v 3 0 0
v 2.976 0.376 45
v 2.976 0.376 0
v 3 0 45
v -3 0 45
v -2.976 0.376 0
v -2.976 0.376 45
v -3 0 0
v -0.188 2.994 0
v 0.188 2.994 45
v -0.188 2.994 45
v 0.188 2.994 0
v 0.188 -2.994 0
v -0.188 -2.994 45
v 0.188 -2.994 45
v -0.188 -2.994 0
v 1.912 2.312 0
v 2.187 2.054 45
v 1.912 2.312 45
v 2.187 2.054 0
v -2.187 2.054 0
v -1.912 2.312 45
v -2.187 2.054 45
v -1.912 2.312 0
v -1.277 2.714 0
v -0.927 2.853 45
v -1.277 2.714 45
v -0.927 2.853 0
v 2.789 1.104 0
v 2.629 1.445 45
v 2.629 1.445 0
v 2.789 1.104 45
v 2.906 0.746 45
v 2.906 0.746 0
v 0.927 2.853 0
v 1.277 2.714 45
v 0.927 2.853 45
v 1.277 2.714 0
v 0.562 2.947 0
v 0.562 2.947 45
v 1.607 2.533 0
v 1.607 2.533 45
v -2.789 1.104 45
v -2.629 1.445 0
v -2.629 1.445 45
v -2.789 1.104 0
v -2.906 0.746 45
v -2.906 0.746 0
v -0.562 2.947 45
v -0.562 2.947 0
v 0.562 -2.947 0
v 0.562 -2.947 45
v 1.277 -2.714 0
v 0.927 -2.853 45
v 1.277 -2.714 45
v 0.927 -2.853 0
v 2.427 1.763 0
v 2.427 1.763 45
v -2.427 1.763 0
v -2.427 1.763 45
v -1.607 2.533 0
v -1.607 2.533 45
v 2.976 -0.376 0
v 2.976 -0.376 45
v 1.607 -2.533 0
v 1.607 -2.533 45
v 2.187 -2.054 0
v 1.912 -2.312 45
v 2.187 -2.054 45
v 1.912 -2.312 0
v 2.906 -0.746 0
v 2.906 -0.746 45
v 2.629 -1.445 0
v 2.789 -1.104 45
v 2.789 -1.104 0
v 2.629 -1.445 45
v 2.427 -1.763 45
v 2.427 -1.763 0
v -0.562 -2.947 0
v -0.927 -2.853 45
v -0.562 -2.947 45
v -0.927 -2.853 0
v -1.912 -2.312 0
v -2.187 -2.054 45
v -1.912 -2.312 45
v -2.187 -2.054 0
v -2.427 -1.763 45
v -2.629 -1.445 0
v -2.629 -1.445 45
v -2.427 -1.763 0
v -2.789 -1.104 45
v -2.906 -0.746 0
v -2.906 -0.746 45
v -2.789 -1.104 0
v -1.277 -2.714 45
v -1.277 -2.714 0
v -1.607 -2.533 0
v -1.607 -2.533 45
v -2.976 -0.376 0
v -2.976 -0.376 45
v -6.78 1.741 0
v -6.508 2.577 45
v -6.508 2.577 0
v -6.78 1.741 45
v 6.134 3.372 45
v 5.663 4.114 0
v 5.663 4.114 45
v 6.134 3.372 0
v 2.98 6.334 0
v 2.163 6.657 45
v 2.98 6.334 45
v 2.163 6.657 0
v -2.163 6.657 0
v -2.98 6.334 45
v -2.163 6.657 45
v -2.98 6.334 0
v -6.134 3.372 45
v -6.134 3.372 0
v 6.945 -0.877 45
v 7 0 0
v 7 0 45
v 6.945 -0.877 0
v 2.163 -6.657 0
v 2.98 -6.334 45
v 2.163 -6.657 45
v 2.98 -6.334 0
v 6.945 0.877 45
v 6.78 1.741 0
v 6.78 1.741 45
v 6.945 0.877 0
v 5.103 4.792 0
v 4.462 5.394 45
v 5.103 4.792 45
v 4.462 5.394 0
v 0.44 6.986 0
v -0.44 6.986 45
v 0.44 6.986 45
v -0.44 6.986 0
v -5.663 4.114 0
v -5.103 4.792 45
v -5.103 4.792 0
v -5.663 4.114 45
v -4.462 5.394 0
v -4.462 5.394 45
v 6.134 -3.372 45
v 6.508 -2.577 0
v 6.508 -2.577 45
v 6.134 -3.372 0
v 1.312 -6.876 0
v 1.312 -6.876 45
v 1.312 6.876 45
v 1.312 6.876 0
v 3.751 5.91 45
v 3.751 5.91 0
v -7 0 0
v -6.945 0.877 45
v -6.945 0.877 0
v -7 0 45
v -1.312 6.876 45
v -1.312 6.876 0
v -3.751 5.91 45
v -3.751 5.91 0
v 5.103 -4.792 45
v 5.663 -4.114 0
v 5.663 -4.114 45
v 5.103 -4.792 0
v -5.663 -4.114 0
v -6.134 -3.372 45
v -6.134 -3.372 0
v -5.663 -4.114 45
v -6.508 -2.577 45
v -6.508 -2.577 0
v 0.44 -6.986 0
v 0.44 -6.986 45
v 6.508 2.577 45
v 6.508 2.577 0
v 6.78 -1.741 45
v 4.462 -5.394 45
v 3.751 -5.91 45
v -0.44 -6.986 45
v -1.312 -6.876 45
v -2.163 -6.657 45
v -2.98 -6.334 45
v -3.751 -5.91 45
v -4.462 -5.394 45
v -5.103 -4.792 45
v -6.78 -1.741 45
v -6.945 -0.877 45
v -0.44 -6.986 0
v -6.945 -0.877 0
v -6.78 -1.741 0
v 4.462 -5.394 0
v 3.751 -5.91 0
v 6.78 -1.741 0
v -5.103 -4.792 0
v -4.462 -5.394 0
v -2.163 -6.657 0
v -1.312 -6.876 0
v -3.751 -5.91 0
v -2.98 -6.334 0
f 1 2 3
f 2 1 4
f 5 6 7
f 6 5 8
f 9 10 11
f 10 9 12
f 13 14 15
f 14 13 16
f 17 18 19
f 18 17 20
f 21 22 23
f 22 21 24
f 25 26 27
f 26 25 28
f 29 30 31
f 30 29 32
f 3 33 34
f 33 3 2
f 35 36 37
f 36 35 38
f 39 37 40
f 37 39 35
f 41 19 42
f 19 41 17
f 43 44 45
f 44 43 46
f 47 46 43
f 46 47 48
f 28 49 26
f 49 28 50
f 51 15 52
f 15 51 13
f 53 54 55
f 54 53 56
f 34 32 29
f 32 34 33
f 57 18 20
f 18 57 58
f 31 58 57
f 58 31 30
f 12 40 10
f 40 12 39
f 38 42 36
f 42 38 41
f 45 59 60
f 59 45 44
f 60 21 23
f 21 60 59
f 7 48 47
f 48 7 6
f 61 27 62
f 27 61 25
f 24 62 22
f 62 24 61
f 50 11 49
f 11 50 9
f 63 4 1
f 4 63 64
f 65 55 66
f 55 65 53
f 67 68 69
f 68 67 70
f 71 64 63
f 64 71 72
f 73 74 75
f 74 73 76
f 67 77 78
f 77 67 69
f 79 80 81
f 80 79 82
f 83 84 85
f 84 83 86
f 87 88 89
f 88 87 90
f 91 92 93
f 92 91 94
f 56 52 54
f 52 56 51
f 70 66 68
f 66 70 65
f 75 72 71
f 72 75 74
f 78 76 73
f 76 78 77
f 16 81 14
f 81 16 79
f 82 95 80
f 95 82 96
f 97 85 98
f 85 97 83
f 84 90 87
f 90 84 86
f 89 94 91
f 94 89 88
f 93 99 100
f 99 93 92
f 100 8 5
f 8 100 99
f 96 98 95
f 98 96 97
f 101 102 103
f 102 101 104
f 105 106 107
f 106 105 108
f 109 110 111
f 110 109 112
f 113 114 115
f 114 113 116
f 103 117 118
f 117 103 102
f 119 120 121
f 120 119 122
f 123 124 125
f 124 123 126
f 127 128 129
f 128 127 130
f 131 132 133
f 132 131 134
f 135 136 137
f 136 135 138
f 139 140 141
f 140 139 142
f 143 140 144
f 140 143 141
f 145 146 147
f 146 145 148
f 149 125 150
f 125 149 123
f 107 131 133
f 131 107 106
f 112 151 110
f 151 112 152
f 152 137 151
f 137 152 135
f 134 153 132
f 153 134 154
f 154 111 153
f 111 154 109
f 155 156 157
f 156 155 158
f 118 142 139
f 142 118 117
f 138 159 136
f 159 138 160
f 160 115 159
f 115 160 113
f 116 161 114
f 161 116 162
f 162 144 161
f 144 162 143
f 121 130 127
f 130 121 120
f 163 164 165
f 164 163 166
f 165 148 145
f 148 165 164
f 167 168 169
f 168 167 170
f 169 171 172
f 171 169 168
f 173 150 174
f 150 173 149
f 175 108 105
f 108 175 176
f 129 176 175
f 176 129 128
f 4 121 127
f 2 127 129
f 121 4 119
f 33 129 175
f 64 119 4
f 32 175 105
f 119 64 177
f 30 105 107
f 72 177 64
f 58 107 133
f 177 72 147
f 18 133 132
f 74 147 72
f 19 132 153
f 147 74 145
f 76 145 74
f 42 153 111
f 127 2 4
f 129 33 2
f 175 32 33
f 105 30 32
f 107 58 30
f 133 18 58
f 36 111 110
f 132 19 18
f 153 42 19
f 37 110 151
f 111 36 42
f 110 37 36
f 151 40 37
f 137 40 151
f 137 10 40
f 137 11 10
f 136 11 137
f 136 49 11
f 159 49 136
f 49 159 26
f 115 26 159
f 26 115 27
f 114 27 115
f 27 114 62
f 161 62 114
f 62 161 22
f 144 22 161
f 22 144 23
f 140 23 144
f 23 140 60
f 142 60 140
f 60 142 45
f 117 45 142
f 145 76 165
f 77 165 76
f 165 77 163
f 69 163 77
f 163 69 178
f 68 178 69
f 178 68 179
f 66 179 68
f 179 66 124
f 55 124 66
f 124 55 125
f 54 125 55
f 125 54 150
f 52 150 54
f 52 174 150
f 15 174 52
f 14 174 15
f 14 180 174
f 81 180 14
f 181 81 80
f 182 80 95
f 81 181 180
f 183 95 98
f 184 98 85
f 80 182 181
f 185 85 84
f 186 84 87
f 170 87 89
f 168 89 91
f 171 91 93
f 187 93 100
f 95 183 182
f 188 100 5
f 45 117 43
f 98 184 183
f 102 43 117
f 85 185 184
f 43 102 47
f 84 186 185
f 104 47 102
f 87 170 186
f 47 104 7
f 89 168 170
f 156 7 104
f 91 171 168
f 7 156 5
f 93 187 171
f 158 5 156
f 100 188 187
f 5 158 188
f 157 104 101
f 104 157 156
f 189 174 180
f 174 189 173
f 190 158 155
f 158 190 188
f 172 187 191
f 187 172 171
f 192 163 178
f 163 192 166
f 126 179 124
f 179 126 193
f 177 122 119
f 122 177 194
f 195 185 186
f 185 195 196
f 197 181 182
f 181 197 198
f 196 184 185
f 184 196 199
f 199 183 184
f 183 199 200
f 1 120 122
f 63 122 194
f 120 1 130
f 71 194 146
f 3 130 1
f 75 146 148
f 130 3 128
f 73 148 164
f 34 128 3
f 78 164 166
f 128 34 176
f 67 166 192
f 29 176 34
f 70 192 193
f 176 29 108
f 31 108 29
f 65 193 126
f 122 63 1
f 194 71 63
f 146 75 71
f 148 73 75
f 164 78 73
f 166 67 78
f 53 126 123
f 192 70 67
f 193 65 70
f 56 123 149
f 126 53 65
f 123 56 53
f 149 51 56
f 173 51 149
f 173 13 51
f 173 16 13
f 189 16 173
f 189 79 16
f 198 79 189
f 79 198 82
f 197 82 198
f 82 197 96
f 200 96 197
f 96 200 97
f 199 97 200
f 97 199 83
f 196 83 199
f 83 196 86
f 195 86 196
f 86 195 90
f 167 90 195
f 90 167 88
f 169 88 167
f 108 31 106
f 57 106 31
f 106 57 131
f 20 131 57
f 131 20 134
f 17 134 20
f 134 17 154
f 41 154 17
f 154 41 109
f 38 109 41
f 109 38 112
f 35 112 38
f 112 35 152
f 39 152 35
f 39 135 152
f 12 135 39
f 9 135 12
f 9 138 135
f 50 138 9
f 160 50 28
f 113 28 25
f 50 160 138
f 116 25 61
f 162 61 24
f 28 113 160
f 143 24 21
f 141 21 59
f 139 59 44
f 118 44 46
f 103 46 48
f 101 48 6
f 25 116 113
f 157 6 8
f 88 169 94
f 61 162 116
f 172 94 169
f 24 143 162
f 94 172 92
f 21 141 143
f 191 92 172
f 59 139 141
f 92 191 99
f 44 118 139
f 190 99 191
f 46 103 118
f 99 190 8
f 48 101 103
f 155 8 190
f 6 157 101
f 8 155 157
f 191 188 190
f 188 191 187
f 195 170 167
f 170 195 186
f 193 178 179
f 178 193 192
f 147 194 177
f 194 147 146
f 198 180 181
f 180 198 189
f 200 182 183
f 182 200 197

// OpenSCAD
$fn = 50;


difference() {
	union() {
		cylinder(h = 45, r = 7.0000000000);
	}
	union() {
		cylinder(h = 45, r = 3.0000000000);
		cylinder(h = 45, r = 3.0000000000);
		cylinder(h = 45, r = 1.5000000000);
		cylinder(h = 45, r = 1.5000000000);
		cylinder(h = 45, r = 1.5000000000);
		cylinder(h = 45, r = 1.5000000000);
		cylinder(h = 45, r = 1.5000000000);
		cylinder(h = 45, r = 1.5000000000);
	}
}
